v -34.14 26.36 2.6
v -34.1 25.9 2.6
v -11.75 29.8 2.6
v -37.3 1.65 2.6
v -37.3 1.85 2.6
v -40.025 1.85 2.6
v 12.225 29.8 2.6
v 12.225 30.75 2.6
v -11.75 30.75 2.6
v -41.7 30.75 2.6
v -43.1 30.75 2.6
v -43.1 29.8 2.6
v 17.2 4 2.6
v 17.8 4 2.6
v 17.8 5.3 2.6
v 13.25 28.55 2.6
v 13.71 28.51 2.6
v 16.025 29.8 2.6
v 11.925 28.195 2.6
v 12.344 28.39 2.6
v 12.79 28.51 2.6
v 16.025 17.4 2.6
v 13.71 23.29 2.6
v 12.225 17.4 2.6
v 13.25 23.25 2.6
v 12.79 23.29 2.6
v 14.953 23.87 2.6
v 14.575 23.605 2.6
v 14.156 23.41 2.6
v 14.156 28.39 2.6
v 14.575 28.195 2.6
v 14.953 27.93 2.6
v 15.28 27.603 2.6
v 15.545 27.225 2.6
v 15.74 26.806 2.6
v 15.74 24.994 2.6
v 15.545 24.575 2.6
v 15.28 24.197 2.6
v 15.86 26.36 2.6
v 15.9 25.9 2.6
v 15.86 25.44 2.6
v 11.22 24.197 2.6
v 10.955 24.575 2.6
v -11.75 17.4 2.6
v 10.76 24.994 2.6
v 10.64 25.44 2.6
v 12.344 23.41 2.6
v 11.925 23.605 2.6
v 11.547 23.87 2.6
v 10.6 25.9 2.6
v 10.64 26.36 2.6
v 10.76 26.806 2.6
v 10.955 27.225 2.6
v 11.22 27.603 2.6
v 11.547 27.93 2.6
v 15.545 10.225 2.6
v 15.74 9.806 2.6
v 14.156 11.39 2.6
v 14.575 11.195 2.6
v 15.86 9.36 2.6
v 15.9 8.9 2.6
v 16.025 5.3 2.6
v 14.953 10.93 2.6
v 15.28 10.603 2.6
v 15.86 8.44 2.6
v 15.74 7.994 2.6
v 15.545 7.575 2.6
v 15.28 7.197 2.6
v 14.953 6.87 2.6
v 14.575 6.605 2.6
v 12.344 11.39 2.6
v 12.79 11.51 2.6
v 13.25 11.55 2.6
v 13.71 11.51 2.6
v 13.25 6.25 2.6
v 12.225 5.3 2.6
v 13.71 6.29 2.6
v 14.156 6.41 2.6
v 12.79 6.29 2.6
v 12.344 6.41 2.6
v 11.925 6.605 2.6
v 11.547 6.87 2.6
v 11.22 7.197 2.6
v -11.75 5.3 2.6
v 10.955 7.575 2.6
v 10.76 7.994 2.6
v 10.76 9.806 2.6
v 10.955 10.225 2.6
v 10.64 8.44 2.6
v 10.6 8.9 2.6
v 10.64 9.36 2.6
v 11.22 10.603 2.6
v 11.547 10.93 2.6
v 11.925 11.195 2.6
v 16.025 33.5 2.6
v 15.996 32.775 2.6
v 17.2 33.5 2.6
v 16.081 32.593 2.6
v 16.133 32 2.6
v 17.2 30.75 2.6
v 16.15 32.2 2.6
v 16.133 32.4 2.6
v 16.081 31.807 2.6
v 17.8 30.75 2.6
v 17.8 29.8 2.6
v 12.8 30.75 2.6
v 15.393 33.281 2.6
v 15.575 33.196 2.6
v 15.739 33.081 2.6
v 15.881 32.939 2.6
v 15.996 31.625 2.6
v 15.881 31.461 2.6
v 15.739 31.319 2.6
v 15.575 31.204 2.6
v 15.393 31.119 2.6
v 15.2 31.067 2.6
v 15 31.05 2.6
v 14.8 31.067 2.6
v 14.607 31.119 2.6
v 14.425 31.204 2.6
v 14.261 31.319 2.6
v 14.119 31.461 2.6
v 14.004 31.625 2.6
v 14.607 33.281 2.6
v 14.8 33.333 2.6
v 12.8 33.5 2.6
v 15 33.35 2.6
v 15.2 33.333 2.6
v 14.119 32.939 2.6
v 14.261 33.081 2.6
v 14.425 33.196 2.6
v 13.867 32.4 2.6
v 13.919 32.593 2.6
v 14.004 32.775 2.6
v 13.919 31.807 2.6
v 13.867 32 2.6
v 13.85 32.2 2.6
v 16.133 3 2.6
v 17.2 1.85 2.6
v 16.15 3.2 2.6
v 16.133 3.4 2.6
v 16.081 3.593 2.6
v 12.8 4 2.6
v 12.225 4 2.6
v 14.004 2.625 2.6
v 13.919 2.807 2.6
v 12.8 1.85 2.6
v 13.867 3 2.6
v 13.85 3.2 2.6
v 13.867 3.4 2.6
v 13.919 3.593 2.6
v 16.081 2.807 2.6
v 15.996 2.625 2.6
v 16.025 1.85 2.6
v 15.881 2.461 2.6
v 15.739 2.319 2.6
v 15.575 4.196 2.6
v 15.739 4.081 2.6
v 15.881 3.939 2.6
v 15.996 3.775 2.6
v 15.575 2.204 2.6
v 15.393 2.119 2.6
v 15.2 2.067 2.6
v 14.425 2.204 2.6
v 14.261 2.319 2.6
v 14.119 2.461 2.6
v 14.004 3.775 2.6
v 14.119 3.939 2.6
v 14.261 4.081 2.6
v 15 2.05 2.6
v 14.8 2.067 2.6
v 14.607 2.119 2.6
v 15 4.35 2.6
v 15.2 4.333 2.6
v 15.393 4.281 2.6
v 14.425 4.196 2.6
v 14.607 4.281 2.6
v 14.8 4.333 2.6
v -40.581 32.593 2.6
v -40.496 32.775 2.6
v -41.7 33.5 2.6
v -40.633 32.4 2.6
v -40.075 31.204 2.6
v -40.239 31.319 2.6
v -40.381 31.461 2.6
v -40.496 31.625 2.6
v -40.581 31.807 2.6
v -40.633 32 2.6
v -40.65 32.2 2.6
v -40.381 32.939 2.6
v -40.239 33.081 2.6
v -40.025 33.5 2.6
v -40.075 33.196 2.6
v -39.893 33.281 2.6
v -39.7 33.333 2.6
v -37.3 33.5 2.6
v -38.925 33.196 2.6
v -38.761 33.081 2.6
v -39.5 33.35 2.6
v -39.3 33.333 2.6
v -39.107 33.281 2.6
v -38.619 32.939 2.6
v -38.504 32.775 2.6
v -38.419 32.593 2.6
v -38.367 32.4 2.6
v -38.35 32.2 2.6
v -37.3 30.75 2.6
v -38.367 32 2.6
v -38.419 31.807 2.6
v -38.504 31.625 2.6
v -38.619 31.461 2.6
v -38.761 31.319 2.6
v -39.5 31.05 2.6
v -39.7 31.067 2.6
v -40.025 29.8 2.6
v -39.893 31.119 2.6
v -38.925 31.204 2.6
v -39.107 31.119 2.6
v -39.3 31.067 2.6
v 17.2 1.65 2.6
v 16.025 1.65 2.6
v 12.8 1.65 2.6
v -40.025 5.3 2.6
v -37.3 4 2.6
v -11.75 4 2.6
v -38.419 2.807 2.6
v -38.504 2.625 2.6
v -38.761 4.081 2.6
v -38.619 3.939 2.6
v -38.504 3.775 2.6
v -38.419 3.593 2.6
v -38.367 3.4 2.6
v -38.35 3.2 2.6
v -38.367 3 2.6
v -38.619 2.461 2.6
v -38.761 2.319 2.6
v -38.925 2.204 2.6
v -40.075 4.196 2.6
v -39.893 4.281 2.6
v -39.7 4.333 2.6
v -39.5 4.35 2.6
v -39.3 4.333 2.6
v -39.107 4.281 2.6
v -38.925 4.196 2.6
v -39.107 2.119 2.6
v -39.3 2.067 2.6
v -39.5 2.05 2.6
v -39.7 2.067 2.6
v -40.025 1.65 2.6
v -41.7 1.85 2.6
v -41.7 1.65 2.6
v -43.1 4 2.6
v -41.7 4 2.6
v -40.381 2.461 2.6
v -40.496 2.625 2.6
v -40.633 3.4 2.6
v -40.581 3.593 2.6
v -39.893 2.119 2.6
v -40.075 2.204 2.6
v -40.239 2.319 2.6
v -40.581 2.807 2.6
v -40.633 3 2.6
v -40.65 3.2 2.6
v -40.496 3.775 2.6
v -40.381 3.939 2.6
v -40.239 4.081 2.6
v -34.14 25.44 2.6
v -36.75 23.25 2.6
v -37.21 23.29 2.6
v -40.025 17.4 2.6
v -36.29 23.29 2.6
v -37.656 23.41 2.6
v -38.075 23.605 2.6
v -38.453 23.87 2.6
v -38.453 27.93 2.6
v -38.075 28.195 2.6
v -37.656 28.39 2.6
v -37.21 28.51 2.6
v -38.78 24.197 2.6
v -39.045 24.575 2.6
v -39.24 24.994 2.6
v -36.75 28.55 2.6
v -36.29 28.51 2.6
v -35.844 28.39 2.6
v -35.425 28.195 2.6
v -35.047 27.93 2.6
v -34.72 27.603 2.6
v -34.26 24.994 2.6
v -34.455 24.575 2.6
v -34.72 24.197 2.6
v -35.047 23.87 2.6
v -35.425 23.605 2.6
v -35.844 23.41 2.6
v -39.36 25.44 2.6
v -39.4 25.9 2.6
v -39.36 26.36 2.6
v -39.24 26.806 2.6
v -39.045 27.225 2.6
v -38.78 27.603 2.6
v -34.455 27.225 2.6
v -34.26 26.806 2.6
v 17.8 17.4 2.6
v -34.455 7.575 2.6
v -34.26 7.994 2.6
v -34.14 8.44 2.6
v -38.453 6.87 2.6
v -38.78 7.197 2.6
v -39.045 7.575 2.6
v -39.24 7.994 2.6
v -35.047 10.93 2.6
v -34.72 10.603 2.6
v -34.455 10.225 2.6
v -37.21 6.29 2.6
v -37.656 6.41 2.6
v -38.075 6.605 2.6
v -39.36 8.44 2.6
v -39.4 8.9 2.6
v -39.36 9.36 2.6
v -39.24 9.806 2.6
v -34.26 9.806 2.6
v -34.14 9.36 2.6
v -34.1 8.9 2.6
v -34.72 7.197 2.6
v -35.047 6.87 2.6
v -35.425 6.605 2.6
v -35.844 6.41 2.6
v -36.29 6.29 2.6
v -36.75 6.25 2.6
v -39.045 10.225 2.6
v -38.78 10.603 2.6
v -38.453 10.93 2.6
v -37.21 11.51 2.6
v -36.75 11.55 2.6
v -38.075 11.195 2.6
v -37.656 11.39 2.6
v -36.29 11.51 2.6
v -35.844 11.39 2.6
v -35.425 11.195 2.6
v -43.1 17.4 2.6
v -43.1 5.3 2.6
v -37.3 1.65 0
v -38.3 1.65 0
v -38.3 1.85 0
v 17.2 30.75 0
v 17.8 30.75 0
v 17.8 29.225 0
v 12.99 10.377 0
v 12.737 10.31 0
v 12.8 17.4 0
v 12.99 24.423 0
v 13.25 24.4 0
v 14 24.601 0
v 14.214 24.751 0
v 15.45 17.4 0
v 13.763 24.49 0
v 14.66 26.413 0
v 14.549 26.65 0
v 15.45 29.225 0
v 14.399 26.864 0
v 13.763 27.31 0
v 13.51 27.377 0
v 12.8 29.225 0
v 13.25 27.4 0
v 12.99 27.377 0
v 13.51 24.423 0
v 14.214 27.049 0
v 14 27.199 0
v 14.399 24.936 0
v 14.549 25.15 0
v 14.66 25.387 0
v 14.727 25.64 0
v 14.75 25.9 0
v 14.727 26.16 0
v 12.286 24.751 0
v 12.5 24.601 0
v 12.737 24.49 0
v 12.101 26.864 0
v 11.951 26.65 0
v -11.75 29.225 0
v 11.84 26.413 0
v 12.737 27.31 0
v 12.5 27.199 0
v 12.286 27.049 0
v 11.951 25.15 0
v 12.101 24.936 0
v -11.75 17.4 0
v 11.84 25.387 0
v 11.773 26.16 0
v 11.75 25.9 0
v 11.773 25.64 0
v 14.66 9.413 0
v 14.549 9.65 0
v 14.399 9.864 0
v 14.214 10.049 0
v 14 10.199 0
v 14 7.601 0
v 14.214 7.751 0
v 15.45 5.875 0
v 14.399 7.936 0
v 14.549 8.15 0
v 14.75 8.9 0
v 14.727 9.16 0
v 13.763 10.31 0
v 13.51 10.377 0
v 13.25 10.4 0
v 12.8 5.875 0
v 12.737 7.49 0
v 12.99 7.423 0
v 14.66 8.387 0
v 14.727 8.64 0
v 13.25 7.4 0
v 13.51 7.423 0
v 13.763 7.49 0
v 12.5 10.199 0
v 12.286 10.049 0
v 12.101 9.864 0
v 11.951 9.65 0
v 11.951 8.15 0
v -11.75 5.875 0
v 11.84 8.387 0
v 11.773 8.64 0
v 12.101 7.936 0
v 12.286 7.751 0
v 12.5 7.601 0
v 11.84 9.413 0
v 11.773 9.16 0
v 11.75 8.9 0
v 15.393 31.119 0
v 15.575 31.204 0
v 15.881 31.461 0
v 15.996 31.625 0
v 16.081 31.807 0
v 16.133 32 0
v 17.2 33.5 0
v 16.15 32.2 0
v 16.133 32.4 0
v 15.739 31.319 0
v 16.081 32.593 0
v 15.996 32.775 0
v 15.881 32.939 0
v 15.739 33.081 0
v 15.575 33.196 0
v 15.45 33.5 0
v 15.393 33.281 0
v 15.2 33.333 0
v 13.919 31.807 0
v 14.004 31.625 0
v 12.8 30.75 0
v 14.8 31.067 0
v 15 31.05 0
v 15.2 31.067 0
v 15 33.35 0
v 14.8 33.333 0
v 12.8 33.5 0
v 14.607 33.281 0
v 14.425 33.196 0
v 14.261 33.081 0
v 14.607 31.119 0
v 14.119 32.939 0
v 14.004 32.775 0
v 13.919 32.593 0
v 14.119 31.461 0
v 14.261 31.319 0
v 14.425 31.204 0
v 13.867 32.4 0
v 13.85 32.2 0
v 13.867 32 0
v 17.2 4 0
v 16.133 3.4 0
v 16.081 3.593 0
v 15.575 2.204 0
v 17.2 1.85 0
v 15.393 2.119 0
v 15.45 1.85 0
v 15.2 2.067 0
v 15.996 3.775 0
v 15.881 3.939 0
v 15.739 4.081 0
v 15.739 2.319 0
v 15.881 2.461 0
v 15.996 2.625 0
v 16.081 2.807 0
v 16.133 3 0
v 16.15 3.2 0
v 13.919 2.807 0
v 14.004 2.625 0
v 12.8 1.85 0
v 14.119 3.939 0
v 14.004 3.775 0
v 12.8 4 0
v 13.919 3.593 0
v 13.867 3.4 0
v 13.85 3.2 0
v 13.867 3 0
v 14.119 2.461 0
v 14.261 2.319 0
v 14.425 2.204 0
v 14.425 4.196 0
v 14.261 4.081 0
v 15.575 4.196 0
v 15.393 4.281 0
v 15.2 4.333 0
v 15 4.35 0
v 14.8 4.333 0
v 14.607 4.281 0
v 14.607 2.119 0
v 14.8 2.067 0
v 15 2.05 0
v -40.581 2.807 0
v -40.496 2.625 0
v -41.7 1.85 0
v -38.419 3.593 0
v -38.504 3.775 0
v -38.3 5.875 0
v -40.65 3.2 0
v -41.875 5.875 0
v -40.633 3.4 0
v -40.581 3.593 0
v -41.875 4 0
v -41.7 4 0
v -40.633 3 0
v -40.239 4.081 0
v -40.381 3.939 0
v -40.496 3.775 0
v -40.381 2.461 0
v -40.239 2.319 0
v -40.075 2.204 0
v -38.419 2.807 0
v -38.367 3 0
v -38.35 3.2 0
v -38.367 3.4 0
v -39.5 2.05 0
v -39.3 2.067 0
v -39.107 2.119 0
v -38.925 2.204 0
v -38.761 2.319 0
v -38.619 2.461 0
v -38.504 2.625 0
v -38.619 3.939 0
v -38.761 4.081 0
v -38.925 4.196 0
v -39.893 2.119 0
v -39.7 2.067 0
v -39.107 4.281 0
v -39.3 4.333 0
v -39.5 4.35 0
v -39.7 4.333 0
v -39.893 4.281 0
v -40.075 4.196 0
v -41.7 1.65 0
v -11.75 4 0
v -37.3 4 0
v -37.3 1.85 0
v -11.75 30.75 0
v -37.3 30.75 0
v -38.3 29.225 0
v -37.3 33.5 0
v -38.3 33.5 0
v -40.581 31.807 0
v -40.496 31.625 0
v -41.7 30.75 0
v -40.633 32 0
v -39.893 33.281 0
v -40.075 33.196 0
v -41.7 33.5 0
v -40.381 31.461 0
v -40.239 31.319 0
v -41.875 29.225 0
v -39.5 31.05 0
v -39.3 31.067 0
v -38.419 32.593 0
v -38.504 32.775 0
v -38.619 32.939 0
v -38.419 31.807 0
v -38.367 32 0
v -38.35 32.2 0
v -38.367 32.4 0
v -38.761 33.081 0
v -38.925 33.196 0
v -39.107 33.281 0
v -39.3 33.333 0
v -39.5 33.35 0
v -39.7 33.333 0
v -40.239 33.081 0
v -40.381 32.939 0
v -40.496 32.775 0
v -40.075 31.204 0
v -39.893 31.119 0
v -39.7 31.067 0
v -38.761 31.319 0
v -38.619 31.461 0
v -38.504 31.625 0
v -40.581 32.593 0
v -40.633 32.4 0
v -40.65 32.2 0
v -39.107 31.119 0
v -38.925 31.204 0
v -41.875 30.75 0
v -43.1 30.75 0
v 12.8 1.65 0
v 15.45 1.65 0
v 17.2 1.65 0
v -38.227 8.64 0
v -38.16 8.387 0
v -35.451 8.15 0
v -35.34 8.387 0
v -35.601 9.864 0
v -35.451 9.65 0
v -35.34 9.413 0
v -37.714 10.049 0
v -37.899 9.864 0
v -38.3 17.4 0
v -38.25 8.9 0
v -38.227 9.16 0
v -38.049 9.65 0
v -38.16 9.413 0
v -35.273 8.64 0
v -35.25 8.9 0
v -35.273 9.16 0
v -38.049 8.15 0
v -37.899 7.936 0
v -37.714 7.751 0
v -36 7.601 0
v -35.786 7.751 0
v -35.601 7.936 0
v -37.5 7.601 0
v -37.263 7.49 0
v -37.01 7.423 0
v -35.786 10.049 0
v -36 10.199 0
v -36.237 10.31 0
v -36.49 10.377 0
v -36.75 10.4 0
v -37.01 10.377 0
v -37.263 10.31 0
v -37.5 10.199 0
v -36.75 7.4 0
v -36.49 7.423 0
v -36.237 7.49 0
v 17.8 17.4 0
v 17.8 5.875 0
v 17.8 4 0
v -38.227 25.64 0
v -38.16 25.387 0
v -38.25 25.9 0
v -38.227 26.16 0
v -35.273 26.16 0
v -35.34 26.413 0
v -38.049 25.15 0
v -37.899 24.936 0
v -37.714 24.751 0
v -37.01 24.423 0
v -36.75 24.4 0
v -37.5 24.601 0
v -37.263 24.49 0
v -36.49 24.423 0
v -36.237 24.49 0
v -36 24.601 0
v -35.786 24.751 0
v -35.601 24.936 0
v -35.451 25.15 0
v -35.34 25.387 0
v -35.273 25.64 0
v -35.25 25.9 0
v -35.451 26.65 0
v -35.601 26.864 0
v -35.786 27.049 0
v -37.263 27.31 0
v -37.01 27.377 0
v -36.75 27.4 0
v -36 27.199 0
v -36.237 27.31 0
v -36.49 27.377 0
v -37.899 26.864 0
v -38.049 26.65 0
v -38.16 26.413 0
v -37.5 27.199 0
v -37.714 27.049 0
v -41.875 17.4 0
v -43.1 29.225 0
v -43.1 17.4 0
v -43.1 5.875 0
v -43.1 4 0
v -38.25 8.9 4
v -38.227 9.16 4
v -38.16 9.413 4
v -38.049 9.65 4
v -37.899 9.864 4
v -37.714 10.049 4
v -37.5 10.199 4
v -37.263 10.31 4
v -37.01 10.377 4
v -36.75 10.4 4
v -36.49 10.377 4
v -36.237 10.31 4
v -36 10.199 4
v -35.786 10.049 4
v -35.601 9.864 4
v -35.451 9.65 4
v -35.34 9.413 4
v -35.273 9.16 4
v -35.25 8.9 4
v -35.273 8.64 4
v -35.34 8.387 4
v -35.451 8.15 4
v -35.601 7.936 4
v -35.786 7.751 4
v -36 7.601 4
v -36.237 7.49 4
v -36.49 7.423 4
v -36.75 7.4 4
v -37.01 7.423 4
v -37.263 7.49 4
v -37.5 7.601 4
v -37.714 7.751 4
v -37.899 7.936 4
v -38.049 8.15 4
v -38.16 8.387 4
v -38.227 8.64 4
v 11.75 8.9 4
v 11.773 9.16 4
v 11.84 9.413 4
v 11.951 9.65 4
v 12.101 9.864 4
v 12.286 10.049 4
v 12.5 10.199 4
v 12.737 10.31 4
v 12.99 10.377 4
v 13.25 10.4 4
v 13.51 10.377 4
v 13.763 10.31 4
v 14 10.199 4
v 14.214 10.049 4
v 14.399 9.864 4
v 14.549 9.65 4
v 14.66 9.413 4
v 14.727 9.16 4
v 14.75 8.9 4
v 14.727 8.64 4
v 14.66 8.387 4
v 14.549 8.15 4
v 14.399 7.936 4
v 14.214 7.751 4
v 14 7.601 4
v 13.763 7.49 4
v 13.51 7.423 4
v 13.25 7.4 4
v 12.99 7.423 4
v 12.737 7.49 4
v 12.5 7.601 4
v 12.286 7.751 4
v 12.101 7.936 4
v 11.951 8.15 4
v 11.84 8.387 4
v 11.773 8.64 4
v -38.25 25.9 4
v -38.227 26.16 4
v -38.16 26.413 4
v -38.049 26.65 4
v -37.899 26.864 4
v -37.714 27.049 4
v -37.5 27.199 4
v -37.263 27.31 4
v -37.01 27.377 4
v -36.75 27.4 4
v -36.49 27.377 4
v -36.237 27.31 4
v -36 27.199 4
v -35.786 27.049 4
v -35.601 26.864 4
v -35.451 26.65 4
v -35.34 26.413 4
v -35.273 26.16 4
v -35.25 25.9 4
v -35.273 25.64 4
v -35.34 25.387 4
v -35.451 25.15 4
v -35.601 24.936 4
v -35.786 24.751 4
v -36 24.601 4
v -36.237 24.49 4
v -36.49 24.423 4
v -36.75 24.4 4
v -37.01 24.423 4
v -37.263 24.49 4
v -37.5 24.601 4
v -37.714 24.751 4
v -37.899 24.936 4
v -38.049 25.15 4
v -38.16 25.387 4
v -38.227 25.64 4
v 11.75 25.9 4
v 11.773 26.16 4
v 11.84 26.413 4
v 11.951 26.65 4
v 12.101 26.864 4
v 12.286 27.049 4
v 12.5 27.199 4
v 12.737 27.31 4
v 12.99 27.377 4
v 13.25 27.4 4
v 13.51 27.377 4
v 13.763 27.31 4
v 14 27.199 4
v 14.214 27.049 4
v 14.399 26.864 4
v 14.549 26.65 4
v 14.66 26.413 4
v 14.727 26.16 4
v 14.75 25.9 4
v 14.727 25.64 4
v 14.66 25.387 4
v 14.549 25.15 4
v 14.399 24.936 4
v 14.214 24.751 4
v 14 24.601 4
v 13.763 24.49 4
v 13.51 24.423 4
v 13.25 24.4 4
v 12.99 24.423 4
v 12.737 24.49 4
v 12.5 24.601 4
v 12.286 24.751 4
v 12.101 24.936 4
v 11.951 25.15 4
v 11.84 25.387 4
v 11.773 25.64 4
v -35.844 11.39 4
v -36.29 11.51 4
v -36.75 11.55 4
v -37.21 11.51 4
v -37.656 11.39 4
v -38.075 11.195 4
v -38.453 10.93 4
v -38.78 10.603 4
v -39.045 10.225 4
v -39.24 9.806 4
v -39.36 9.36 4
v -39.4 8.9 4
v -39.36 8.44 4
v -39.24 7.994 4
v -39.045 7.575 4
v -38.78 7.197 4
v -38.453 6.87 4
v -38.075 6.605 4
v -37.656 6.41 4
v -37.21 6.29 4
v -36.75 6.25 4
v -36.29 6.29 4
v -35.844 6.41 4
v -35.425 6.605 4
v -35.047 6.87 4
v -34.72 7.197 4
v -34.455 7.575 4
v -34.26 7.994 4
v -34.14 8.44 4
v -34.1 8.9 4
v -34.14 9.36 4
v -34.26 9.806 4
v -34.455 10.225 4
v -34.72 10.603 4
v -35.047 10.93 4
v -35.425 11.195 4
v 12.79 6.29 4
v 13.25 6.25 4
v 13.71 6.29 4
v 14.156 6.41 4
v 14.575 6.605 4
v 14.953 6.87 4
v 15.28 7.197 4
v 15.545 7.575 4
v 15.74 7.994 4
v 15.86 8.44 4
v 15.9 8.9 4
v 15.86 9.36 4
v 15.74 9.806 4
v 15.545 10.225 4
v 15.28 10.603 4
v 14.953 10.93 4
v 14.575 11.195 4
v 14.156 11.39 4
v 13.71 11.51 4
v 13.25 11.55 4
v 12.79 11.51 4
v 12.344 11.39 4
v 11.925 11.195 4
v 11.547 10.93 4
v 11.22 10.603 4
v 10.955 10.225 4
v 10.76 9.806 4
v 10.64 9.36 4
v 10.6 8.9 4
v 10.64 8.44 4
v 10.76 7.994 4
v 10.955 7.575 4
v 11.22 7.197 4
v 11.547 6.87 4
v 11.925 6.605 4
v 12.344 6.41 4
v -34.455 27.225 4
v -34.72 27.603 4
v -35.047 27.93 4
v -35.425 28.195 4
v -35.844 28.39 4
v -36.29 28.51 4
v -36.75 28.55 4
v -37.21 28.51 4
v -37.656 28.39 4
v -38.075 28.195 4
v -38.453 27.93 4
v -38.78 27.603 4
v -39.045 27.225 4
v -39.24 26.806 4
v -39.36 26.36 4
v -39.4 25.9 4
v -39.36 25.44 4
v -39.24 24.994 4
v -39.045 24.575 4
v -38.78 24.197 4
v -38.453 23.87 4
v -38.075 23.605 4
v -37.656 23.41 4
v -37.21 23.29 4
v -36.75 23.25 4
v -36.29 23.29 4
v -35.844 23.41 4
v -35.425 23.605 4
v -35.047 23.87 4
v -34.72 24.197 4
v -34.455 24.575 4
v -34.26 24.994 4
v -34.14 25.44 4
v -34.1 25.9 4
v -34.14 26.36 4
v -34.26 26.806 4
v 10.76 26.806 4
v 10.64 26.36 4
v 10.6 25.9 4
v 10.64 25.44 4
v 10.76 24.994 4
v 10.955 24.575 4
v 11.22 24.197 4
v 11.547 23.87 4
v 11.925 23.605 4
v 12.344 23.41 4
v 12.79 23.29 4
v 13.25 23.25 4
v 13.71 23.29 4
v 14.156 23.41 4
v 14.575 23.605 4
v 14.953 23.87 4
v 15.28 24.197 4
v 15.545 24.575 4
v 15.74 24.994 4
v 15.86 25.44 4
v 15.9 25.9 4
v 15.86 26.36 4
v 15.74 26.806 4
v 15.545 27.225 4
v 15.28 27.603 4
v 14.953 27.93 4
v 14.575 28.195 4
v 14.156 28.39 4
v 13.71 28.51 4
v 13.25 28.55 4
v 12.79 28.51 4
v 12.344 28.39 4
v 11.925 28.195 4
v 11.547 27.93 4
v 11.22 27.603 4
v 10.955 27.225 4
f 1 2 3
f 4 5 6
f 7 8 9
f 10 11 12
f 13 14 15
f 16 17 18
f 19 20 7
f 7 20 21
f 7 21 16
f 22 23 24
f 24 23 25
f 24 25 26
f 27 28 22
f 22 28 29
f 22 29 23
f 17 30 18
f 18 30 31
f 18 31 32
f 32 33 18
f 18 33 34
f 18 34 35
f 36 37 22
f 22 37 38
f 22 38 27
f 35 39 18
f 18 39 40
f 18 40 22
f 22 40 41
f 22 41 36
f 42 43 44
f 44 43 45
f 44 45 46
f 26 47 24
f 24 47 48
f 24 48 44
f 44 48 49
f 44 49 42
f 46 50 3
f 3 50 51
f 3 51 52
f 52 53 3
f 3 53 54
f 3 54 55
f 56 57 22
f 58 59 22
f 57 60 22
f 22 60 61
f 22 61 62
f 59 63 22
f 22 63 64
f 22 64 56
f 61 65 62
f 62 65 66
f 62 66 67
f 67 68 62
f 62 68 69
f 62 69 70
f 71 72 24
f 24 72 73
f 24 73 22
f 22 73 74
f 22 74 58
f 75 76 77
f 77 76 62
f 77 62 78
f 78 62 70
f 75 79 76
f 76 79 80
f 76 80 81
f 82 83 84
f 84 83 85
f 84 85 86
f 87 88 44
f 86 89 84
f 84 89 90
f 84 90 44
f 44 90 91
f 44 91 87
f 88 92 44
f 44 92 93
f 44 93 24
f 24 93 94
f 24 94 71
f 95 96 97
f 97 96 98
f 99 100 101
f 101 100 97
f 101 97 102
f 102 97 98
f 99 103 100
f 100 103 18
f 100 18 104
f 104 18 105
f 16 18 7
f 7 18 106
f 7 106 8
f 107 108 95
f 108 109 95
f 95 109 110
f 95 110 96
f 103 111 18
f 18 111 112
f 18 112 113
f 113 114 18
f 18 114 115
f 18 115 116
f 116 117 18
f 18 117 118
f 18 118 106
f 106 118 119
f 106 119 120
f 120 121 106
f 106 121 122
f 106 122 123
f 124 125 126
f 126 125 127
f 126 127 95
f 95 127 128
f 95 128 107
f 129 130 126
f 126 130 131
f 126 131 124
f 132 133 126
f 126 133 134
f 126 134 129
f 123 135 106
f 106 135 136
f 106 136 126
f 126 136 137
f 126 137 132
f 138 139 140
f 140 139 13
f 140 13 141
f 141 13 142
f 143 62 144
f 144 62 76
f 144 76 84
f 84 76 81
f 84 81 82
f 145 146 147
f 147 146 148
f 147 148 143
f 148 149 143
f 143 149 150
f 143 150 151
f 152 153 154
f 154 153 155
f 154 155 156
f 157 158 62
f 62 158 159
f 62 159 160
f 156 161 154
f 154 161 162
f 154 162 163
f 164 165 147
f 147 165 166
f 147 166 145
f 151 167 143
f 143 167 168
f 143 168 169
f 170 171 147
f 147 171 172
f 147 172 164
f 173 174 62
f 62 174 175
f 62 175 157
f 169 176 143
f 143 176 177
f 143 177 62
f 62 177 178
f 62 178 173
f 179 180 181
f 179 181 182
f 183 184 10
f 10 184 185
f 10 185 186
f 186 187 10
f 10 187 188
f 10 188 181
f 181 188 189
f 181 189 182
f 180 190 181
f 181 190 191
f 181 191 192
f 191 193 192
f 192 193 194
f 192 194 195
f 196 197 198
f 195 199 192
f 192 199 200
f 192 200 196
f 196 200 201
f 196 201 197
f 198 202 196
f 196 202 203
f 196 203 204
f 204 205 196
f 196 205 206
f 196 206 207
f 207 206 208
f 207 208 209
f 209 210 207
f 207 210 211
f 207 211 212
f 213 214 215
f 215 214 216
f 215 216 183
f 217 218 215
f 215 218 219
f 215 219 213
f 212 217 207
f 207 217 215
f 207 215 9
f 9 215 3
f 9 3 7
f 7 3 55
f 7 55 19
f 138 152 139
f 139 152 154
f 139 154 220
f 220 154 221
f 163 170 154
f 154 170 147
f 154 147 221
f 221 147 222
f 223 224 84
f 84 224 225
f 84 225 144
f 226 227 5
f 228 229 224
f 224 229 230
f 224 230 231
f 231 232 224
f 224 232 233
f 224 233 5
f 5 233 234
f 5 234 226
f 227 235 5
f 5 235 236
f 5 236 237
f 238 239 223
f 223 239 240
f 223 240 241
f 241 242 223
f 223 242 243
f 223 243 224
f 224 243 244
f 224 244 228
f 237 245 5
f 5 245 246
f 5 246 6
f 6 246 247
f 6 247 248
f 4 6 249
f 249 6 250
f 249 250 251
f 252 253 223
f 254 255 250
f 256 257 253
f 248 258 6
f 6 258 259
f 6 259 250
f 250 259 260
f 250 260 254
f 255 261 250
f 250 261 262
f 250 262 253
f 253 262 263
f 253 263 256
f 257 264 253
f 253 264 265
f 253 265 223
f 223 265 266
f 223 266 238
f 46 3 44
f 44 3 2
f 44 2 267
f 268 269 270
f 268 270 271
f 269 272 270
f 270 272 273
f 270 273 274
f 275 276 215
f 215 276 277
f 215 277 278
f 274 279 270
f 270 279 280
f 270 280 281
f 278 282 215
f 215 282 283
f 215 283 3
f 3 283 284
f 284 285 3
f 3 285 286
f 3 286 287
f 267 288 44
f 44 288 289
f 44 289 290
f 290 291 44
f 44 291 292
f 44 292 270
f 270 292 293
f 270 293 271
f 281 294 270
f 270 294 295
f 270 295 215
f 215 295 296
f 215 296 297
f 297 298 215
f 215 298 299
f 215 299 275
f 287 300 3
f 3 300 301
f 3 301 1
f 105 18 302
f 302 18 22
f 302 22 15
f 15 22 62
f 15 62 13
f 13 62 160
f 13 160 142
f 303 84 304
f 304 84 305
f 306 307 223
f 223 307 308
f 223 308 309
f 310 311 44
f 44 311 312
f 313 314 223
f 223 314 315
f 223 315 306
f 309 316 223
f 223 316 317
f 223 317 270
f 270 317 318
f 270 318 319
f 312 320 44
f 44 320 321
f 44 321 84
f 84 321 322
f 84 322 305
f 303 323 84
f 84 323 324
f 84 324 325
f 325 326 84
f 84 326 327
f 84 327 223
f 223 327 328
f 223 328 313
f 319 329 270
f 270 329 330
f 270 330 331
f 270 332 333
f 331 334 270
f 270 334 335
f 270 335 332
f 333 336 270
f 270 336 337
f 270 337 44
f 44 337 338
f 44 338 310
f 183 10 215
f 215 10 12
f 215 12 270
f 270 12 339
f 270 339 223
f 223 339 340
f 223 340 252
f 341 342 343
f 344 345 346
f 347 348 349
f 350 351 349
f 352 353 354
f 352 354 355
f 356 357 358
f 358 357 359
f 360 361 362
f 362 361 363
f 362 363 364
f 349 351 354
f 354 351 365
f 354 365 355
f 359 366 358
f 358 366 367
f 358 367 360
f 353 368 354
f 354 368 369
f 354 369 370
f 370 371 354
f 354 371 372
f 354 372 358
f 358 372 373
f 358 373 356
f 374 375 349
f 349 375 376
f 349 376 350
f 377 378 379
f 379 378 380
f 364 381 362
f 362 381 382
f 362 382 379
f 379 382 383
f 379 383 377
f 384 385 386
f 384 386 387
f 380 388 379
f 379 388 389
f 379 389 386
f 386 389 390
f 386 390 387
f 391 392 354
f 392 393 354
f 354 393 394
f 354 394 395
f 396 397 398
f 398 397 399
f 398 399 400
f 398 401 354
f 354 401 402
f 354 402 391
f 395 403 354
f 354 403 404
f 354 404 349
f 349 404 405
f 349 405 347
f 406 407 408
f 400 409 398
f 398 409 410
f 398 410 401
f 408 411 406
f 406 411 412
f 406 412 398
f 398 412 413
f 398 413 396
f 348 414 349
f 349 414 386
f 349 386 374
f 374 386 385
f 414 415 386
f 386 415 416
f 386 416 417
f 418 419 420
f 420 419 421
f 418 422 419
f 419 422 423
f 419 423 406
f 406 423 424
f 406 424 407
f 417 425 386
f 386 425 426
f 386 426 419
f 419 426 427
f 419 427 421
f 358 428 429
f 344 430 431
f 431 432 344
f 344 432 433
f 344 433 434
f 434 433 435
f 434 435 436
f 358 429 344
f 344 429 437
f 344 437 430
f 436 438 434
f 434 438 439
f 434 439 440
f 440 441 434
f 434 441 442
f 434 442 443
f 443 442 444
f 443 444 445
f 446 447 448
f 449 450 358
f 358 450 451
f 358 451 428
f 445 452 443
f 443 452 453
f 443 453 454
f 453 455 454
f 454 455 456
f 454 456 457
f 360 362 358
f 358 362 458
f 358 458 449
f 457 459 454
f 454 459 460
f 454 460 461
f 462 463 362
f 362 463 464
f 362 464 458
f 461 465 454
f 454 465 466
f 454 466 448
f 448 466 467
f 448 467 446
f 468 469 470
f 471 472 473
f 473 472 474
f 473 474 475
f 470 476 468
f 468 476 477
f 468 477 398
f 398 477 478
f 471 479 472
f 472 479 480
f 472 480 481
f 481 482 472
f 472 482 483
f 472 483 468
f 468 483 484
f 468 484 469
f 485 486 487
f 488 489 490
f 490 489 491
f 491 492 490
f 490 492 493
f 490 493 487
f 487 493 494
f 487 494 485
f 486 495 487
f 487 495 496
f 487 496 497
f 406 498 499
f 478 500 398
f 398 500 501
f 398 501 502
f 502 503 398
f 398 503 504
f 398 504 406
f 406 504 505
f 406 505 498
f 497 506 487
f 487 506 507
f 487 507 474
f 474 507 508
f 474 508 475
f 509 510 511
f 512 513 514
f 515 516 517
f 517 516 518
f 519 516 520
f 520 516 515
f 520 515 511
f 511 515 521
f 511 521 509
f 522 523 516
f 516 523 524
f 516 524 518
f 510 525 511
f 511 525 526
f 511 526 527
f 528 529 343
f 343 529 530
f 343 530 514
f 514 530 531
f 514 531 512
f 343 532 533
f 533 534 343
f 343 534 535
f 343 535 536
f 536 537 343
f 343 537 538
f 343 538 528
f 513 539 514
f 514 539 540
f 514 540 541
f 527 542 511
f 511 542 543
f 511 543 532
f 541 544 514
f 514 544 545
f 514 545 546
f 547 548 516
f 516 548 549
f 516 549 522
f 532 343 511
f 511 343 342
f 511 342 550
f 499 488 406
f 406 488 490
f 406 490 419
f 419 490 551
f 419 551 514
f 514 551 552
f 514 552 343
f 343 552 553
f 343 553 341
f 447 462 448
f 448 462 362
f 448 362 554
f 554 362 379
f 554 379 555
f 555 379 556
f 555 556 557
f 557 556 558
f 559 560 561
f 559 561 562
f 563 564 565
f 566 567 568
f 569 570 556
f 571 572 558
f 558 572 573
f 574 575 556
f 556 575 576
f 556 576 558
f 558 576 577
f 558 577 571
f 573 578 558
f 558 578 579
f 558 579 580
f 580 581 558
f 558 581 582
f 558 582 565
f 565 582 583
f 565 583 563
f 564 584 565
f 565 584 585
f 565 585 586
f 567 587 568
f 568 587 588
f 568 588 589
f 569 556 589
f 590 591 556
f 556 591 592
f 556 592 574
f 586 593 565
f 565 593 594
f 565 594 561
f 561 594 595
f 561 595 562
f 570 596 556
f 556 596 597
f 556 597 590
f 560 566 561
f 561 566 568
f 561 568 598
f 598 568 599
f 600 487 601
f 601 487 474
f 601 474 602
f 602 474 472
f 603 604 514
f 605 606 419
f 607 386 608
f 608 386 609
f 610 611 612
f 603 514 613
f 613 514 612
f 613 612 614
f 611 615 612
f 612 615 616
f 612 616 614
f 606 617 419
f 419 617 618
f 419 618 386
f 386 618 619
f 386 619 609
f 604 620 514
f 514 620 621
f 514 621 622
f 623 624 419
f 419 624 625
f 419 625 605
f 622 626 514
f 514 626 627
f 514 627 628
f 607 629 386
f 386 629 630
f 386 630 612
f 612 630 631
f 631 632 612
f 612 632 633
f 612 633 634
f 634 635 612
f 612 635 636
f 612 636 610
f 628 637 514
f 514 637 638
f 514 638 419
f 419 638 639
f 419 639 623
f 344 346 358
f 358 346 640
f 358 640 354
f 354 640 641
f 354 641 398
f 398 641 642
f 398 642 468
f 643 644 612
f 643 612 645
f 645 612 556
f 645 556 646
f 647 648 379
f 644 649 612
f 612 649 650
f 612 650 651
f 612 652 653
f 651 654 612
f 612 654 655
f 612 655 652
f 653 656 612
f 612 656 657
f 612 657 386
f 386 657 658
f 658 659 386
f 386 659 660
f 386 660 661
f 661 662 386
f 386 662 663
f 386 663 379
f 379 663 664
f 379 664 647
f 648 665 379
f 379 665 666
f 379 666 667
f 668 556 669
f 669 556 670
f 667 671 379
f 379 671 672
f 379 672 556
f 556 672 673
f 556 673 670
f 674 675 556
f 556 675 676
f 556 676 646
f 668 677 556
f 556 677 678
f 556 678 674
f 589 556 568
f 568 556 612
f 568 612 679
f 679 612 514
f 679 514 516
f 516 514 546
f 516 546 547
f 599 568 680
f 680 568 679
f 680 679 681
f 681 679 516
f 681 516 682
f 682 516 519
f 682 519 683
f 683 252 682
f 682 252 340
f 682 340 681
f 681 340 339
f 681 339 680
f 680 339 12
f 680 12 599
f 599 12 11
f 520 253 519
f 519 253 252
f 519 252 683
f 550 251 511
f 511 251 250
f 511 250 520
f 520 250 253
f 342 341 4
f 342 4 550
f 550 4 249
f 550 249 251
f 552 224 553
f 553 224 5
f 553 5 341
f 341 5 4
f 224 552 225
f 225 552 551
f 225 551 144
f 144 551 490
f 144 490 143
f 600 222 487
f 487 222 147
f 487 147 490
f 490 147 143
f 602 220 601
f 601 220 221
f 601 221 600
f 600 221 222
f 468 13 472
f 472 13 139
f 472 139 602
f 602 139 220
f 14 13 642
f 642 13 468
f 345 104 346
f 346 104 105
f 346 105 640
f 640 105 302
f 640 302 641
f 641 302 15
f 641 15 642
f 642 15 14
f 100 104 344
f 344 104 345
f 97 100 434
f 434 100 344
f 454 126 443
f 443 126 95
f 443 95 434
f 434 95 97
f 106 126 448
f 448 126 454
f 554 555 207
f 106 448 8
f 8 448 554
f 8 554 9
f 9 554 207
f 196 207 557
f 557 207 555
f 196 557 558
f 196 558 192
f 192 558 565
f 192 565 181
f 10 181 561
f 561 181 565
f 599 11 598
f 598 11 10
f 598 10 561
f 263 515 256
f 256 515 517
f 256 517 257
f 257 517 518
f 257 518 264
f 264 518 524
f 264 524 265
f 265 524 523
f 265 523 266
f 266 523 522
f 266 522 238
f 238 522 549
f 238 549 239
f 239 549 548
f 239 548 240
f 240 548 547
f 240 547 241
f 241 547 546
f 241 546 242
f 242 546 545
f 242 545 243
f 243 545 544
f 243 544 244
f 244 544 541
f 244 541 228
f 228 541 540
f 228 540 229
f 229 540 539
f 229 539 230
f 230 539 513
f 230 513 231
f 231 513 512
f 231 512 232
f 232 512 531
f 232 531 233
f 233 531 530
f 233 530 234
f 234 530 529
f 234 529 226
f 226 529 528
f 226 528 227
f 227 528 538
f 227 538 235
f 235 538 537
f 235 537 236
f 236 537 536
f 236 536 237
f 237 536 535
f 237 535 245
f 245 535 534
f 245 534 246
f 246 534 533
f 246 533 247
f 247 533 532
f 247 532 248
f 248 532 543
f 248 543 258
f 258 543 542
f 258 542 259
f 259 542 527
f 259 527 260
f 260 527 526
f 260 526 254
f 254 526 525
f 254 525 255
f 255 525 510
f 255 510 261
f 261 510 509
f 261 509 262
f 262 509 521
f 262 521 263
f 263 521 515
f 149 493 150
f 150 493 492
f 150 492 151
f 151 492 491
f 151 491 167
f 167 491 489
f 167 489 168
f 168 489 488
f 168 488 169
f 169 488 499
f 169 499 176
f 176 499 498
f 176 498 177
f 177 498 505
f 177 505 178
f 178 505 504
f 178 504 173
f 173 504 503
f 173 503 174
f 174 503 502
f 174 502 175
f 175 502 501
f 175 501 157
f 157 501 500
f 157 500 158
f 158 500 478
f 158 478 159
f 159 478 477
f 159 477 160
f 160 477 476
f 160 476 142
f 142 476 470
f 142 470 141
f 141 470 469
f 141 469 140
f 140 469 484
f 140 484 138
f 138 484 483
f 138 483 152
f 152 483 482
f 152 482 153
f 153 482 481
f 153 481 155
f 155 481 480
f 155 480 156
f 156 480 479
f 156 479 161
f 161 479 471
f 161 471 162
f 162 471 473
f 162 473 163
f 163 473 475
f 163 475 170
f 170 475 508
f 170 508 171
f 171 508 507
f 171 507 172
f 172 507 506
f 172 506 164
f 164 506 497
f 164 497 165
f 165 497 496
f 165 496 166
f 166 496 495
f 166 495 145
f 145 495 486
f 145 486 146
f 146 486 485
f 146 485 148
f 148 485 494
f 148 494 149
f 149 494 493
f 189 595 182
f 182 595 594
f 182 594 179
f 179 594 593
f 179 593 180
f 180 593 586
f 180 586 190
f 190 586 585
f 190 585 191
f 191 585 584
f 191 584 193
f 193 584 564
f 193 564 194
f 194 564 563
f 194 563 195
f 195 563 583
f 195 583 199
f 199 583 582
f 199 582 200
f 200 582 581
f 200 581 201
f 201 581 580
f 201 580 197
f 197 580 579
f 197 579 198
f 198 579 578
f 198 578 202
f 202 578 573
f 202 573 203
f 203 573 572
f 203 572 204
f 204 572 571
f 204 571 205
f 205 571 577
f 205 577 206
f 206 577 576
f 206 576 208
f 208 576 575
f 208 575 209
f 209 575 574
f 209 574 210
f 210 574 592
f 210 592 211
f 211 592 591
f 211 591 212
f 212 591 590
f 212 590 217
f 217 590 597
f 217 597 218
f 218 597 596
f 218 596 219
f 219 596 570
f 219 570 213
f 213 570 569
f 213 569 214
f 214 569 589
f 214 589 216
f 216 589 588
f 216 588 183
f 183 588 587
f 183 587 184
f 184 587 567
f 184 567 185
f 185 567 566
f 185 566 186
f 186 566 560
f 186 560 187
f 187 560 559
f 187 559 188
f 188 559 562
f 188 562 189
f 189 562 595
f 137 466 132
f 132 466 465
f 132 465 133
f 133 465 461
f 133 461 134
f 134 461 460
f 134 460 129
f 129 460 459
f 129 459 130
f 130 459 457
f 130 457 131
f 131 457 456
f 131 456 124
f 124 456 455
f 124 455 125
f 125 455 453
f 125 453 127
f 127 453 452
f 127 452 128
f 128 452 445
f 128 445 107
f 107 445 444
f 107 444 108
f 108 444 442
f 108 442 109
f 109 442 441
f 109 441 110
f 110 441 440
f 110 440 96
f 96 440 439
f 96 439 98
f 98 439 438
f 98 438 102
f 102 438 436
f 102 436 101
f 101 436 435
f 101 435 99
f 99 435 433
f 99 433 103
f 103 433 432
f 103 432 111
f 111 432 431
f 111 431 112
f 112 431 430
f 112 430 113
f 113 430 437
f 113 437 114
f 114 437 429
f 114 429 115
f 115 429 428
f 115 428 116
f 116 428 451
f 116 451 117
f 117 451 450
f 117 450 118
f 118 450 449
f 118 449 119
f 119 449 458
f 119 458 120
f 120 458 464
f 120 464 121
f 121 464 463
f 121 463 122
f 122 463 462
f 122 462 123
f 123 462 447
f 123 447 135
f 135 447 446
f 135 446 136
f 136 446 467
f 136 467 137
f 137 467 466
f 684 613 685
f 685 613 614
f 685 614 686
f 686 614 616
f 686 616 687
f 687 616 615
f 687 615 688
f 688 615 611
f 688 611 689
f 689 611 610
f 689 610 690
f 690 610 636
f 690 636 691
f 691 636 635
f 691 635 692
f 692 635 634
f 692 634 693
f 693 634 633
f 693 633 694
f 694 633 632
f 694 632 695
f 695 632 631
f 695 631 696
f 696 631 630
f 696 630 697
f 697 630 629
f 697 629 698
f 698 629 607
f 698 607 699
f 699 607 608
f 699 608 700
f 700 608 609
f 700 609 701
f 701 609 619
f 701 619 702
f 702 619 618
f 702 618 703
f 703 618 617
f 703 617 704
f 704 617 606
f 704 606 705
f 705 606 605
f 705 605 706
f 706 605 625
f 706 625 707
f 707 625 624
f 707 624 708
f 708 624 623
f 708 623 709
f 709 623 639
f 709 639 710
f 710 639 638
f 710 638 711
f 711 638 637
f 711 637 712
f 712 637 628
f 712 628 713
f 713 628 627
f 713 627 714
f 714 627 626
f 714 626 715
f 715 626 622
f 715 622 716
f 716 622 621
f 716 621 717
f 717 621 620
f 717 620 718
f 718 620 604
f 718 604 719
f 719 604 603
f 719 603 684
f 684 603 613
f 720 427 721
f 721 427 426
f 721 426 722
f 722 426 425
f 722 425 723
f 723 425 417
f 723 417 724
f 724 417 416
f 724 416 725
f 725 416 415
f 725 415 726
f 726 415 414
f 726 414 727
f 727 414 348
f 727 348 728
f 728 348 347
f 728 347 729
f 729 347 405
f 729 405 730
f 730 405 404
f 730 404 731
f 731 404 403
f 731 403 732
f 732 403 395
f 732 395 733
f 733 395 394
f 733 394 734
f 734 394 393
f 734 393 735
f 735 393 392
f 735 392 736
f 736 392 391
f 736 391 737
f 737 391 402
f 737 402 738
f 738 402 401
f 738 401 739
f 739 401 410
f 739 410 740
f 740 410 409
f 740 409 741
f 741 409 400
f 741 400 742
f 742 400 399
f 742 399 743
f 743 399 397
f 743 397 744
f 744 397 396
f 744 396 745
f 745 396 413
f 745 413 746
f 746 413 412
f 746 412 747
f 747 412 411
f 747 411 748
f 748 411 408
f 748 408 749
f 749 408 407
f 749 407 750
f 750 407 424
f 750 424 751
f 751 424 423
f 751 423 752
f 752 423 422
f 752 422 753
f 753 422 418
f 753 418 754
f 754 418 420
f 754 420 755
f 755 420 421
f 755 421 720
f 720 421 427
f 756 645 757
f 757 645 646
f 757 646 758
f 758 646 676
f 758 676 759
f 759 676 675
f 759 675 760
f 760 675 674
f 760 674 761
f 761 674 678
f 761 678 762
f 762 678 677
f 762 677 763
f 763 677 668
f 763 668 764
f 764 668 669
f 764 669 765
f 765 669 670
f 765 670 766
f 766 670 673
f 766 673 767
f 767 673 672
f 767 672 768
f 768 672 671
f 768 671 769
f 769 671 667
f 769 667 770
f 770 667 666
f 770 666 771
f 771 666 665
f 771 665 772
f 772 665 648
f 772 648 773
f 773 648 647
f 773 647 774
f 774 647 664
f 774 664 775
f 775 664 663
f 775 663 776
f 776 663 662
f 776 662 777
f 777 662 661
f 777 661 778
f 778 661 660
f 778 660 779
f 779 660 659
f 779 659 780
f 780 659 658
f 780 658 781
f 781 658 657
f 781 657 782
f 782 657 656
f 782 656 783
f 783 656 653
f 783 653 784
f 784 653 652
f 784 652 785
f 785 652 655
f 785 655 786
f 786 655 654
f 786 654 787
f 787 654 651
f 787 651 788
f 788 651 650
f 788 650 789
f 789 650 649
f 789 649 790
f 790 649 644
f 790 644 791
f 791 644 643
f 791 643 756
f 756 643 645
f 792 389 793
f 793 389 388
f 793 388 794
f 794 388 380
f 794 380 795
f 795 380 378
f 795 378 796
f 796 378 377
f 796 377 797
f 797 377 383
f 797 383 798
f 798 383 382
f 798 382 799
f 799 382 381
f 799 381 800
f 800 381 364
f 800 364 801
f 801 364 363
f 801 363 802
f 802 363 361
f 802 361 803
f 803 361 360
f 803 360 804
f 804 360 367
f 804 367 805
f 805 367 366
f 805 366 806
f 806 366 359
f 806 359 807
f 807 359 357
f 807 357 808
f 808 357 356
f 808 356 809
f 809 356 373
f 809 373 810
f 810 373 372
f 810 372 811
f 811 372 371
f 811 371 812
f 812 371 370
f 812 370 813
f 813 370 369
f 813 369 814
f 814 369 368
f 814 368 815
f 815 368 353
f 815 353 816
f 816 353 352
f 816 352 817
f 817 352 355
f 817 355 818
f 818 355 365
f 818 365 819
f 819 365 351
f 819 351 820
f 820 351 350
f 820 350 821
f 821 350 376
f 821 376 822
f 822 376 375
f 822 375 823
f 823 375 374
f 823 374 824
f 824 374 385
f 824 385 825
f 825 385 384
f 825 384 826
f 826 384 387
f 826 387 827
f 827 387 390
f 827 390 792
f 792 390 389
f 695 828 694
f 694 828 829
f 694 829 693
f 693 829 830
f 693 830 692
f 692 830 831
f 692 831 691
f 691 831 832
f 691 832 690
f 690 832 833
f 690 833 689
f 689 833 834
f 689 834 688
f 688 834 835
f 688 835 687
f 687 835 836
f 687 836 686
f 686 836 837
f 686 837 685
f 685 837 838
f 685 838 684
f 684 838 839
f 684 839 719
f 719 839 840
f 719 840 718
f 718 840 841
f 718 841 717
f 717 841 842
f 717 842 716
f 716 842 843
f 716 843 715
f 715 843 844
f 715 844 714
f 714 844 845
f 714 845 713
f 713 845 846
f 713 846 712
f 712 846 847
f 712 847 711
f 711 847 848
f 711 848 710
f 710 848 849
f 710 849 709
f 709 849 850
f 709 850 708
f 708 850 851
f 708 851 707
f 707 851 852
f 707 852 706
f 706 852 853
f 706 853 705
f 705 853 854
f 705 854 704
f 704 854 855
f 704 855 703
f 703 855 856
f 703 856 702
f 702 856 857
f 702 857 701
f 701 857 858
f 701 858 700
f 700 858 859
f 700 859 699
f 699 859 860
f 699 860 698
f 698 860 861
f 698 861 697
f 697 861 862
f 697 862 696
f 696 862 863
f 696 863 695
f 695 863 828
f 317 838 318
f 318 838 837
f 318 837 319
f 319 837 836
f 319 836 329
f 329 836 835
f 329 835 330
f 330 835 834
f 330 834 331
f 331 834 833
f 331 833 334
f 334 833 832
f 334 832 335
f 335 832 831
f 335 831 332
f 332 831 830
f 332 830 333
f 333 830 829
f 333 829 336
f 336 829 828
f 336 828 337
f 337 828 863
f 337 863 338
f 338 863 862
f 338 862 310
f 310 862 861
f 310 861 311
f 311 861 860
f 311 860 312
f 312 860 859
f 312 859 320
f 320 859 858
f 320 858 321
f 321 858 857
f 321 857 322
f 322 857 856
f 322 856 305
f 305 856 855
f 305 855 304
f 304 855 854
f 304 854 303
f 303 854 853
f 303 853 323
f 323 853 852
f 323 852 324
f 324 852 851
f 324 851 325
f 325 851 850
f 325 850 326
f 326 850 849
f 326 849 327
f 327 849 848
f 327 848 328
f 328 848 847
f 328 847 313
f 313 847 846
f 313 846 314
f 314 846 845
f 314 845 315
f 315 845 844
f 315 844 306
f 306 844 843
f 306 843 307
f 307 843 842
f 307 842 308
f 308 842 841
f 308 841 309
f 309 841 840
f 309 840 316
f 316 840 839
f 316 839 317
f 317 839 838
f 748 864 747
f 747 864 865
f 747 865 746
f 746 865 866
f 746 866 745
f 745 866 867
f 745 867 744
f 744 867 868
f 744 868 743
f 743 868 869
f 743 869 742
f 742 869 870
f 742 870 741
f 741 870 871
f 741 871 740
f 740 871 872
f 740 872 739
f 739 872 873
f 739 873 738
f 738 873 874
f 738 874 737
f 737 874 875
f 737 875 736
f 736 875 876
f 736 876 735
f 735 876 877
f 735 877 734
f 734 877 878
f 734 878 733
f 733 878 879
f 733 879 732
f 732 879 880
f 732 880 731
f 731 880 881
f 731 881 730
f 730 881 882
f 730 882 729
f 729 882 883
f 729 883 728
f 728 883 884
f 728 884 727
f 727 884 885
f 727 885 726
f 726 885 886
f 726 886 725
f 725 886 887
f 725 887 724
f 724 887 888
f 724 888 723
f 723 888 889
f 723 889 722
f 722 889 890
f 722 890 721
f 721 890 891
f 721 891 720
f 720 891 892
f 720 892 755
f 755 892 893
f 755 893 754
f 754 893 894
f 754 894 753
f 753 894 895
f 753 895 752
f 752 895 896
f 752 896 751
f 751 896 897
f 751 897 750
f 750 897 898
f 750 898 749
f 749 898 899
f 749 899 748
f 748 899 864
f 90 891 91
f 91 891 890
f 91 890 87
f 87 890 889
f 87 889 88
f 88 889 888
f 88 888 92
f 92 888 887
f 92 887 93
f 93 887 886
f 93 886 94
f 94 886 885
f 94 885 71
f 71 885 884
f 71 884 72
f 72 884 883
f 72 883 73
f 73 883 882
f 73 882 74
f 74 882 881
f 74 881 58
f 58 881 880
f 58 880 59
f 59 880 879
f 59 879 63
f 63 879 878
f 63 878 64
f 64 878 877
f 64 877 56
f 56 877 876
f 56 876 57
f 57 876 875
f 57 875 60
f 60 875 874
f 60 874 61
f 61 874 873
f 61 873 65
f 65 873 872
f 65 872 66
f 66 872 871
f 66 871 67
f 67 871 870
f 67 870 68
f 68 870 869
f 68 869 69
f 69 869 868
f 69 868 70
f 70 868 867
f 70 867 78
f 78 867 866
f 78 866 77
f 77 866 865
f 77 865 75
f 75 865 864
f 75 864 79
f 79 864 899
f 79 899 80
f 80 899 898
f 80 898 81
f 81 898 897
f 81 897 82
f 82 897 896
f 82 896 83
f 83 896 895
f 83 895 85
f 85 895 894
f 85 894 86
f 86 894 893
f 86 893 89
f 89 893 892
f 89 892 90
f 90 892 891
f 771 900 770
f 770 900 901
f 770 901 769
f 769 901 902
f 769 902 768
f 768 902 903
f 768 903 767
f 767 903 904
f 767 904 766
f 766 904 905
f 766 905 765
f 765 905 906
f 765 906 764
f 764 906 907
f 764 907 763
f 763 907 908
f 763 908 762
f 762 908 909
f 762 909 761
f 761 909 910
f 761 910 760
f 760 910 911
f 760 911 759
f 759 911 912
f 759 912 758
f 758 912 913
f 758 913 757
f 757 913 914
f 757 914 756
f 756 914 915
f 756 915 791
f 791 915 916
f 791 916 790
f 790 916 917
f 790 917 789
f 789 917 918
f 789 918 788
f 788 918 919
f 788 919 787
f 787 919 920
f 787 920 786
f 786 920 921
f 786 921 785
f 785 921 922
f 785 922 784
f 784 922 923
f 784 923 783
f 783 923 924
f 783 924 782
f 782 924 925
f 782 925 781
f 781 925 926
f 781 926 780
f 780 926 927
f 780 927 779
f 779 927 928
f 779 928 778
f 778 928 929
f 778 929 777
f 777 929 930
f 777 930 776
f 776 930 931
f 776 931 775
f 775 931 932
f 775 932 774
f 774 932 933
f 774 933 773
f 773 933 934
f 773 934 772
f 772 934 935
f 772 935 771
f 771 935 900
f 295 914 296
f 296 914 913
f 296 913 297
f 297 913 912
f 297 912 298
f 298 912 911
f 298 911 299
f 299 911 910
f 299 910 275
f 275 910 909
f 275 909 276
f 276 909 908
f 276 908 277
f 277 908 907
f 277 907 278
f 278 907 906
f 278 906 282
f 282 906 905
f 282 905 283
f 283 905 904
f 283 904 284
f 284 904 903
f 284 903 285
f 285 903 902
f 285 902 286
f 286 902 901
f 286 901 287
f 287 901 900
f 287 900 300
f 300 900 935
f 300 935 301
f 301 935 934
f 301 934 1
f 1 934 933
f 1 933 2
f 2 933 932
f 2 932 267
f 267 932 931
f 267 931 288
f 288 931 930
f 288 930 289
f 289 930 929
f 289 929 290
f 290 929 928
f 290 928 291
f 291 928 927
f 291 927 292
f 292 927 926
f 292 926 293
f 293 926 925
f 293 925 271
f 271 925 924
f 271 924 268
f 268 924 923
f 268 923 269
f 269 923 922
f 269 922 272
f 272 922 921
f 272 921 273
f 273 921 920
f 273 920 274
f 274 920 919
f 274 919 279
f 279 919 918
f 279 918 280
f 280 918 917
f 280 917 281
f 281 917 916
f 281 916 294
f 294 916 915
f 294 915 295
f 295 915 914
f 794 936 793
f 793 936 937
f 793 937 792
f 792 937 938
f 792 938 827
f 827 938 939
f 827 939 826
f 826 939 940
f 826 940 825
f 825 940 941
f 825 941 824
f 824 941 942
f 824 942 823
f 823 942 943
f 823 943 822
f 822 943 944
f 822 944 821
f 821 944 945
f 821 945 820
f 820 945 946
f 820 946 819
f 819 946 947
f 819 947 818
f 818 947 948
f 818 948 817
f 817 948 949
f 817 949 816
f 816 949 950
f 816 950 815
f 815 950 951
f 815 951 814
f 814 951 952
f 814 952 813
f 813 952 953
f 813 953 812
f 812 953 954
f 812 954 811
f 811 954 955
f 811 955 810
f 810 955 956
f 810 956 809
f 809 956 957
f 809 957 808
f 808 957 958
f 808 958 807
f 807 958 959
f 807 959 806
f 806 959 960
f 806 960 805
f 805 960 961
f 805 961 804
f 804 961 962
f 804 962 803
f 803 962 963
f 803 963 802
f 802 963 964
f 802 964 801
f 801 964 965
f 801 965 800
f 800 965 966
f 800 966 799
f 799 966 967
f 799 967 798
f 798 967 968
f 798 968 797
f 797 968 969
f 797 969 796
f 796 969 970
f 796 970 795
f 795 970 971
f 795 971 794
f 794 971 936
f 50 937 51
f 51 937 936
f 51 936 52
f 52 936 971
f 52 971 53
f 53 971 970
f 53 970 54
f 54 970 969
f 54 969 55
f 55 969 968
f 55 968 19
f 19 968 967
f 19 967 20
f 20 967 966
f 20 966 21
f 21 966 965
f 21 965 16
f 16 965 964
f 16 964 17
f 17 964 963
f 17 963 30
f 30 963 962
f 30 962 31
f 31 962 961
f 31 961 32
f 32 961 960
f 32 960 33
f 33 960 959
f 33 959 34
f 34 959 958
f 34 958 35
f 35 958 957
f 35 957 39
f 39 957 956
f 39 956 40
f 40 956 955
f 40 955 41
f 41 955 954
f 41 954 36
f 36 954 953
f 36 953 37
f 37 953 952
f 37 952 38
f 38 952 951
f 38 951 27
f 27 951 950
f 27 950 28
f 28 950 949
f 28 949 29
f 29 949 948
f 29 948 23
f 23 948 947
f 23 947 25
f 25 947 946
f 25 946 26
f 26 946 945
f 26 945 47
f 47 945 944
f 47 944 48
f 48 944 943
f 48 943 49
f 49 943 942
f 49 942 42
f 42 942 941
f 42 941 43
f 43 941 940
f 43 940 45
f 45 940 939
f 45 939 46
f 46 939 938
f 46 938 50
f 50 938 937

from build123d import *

# Parameters (mm, degrees)
PROFILE_R         = 1.15
PROFILE_R_2       = 1.5
EXTRUDE_266_DEPTH = 2.6
EXTRUDE_START     = 2.6
PROFILE_2_R       = 2.65
PROFILE_2_R_2     = 1.5
EXTRUDE_339_DEPTH = 1.4


with BuildPart() as part:
    # profile → Extrude 266 (new body)
    with BuildSketch(Plane.XY):
        Polygon((-43.1, 4), (-41.7, 4), (-41.7, 1.65), (-37.3, 1.65), (-37.3, 4), (12.8, 4), (12.8, 1.65), (17.2, 1.65), (17.2, 4), (17.8, 4), (17.8, 30.75), (17.2, 30.75), (17.2, 33.5), (12.8, 33.5), (12.8, 30.75), (-37.3, 30.75), (-37.3, 33.5), (-41.7, 33.5), (-41.7, 30.75), (-43.1, 30.75), align=None)
        with Locations((-39.5, 3.2)):
            Circle(PROFILE_R, mode=Mode.SUBTRACT)
        with Locations((15, 3.2)):
            Circle(PROFILE_R, mode=Mode.SUBTRACT)
        with Locations((-39.5, 32.2)):
            Circle(PROFILE_R, mode=Mode.SUBTRACT)
        with Locations((15, 32.2)):
            Circle(PROFILE_R, mode=Mode.SUBTRACT)
        with Locations((-36.75, 8.9)):
            Circle(PROFILE_R_2, mode=Mode.SUBTRACT)
        with Locations((13.25, 8.9)):
            Circle(PROFILE_R_2, mode=Mode.SUBTRACT)
        with Locations((-36.75, 25.9)):
            Circle(PROFILE_R_2, mode=Mode.SUBTRACT)
        with Locations((13.25, 25.9)):
            Circle(PROFILE_R_2, mode=Mode.SUBTRACT)
    extrude(amount=EXTRUDE_266_DEPTH)

    # profile 2 → Extrude 339 (add)
    # profile 1 of 4: a face of its own
    with BuildSketch(Plane.XY.offset(EXTRUDE_START)):
        with Locations((-36.75, 8.9)):
            Circle(PROFILE_2_R)
        with Locations((-36.75, 8.9)):
            Circle(PROFILE_2_R_2, mode=Mode.SUBTRACT)
    # profile 2 of 4: a face of its own
    with BuildSketch(Plane.XY.offset(EXTRUDE_START)):
        with Locations((13.25, 8.9)):
            Circle(PROFILE_2_R)
        with Locations((13.25, 8.9)):
            Circle(PROFILE_2_R_2, mode=Mode.SUBTRACT)
    # profile 3 of 4: a face of its own
    with BuildSketch(Plane.XY.offset(EXTRUDE_START)):
        with Locations((-36.75, 25.9)):
            Circle(PROFILE_2_R)
        with Locations((-36.75, 25.9)):
            Circle(PROFILE_2_R_2, mode=Mode.SUBTRACT)
    # profile 4 of 4: a face of its own
    with BuildSketch(Plane.XY.offset(EXTRUDE_START)):
        with Locations((13.25, 25.9)):
            Circle(PROFILE_2_R)
        with Locations((13.25, 25.9)):
            Circle(PROFILE_2_R_2, mode=Mode.SUBTRACT)
    extrude(amount=EXTRUDE_339_DEPTH)


solid = part.part
